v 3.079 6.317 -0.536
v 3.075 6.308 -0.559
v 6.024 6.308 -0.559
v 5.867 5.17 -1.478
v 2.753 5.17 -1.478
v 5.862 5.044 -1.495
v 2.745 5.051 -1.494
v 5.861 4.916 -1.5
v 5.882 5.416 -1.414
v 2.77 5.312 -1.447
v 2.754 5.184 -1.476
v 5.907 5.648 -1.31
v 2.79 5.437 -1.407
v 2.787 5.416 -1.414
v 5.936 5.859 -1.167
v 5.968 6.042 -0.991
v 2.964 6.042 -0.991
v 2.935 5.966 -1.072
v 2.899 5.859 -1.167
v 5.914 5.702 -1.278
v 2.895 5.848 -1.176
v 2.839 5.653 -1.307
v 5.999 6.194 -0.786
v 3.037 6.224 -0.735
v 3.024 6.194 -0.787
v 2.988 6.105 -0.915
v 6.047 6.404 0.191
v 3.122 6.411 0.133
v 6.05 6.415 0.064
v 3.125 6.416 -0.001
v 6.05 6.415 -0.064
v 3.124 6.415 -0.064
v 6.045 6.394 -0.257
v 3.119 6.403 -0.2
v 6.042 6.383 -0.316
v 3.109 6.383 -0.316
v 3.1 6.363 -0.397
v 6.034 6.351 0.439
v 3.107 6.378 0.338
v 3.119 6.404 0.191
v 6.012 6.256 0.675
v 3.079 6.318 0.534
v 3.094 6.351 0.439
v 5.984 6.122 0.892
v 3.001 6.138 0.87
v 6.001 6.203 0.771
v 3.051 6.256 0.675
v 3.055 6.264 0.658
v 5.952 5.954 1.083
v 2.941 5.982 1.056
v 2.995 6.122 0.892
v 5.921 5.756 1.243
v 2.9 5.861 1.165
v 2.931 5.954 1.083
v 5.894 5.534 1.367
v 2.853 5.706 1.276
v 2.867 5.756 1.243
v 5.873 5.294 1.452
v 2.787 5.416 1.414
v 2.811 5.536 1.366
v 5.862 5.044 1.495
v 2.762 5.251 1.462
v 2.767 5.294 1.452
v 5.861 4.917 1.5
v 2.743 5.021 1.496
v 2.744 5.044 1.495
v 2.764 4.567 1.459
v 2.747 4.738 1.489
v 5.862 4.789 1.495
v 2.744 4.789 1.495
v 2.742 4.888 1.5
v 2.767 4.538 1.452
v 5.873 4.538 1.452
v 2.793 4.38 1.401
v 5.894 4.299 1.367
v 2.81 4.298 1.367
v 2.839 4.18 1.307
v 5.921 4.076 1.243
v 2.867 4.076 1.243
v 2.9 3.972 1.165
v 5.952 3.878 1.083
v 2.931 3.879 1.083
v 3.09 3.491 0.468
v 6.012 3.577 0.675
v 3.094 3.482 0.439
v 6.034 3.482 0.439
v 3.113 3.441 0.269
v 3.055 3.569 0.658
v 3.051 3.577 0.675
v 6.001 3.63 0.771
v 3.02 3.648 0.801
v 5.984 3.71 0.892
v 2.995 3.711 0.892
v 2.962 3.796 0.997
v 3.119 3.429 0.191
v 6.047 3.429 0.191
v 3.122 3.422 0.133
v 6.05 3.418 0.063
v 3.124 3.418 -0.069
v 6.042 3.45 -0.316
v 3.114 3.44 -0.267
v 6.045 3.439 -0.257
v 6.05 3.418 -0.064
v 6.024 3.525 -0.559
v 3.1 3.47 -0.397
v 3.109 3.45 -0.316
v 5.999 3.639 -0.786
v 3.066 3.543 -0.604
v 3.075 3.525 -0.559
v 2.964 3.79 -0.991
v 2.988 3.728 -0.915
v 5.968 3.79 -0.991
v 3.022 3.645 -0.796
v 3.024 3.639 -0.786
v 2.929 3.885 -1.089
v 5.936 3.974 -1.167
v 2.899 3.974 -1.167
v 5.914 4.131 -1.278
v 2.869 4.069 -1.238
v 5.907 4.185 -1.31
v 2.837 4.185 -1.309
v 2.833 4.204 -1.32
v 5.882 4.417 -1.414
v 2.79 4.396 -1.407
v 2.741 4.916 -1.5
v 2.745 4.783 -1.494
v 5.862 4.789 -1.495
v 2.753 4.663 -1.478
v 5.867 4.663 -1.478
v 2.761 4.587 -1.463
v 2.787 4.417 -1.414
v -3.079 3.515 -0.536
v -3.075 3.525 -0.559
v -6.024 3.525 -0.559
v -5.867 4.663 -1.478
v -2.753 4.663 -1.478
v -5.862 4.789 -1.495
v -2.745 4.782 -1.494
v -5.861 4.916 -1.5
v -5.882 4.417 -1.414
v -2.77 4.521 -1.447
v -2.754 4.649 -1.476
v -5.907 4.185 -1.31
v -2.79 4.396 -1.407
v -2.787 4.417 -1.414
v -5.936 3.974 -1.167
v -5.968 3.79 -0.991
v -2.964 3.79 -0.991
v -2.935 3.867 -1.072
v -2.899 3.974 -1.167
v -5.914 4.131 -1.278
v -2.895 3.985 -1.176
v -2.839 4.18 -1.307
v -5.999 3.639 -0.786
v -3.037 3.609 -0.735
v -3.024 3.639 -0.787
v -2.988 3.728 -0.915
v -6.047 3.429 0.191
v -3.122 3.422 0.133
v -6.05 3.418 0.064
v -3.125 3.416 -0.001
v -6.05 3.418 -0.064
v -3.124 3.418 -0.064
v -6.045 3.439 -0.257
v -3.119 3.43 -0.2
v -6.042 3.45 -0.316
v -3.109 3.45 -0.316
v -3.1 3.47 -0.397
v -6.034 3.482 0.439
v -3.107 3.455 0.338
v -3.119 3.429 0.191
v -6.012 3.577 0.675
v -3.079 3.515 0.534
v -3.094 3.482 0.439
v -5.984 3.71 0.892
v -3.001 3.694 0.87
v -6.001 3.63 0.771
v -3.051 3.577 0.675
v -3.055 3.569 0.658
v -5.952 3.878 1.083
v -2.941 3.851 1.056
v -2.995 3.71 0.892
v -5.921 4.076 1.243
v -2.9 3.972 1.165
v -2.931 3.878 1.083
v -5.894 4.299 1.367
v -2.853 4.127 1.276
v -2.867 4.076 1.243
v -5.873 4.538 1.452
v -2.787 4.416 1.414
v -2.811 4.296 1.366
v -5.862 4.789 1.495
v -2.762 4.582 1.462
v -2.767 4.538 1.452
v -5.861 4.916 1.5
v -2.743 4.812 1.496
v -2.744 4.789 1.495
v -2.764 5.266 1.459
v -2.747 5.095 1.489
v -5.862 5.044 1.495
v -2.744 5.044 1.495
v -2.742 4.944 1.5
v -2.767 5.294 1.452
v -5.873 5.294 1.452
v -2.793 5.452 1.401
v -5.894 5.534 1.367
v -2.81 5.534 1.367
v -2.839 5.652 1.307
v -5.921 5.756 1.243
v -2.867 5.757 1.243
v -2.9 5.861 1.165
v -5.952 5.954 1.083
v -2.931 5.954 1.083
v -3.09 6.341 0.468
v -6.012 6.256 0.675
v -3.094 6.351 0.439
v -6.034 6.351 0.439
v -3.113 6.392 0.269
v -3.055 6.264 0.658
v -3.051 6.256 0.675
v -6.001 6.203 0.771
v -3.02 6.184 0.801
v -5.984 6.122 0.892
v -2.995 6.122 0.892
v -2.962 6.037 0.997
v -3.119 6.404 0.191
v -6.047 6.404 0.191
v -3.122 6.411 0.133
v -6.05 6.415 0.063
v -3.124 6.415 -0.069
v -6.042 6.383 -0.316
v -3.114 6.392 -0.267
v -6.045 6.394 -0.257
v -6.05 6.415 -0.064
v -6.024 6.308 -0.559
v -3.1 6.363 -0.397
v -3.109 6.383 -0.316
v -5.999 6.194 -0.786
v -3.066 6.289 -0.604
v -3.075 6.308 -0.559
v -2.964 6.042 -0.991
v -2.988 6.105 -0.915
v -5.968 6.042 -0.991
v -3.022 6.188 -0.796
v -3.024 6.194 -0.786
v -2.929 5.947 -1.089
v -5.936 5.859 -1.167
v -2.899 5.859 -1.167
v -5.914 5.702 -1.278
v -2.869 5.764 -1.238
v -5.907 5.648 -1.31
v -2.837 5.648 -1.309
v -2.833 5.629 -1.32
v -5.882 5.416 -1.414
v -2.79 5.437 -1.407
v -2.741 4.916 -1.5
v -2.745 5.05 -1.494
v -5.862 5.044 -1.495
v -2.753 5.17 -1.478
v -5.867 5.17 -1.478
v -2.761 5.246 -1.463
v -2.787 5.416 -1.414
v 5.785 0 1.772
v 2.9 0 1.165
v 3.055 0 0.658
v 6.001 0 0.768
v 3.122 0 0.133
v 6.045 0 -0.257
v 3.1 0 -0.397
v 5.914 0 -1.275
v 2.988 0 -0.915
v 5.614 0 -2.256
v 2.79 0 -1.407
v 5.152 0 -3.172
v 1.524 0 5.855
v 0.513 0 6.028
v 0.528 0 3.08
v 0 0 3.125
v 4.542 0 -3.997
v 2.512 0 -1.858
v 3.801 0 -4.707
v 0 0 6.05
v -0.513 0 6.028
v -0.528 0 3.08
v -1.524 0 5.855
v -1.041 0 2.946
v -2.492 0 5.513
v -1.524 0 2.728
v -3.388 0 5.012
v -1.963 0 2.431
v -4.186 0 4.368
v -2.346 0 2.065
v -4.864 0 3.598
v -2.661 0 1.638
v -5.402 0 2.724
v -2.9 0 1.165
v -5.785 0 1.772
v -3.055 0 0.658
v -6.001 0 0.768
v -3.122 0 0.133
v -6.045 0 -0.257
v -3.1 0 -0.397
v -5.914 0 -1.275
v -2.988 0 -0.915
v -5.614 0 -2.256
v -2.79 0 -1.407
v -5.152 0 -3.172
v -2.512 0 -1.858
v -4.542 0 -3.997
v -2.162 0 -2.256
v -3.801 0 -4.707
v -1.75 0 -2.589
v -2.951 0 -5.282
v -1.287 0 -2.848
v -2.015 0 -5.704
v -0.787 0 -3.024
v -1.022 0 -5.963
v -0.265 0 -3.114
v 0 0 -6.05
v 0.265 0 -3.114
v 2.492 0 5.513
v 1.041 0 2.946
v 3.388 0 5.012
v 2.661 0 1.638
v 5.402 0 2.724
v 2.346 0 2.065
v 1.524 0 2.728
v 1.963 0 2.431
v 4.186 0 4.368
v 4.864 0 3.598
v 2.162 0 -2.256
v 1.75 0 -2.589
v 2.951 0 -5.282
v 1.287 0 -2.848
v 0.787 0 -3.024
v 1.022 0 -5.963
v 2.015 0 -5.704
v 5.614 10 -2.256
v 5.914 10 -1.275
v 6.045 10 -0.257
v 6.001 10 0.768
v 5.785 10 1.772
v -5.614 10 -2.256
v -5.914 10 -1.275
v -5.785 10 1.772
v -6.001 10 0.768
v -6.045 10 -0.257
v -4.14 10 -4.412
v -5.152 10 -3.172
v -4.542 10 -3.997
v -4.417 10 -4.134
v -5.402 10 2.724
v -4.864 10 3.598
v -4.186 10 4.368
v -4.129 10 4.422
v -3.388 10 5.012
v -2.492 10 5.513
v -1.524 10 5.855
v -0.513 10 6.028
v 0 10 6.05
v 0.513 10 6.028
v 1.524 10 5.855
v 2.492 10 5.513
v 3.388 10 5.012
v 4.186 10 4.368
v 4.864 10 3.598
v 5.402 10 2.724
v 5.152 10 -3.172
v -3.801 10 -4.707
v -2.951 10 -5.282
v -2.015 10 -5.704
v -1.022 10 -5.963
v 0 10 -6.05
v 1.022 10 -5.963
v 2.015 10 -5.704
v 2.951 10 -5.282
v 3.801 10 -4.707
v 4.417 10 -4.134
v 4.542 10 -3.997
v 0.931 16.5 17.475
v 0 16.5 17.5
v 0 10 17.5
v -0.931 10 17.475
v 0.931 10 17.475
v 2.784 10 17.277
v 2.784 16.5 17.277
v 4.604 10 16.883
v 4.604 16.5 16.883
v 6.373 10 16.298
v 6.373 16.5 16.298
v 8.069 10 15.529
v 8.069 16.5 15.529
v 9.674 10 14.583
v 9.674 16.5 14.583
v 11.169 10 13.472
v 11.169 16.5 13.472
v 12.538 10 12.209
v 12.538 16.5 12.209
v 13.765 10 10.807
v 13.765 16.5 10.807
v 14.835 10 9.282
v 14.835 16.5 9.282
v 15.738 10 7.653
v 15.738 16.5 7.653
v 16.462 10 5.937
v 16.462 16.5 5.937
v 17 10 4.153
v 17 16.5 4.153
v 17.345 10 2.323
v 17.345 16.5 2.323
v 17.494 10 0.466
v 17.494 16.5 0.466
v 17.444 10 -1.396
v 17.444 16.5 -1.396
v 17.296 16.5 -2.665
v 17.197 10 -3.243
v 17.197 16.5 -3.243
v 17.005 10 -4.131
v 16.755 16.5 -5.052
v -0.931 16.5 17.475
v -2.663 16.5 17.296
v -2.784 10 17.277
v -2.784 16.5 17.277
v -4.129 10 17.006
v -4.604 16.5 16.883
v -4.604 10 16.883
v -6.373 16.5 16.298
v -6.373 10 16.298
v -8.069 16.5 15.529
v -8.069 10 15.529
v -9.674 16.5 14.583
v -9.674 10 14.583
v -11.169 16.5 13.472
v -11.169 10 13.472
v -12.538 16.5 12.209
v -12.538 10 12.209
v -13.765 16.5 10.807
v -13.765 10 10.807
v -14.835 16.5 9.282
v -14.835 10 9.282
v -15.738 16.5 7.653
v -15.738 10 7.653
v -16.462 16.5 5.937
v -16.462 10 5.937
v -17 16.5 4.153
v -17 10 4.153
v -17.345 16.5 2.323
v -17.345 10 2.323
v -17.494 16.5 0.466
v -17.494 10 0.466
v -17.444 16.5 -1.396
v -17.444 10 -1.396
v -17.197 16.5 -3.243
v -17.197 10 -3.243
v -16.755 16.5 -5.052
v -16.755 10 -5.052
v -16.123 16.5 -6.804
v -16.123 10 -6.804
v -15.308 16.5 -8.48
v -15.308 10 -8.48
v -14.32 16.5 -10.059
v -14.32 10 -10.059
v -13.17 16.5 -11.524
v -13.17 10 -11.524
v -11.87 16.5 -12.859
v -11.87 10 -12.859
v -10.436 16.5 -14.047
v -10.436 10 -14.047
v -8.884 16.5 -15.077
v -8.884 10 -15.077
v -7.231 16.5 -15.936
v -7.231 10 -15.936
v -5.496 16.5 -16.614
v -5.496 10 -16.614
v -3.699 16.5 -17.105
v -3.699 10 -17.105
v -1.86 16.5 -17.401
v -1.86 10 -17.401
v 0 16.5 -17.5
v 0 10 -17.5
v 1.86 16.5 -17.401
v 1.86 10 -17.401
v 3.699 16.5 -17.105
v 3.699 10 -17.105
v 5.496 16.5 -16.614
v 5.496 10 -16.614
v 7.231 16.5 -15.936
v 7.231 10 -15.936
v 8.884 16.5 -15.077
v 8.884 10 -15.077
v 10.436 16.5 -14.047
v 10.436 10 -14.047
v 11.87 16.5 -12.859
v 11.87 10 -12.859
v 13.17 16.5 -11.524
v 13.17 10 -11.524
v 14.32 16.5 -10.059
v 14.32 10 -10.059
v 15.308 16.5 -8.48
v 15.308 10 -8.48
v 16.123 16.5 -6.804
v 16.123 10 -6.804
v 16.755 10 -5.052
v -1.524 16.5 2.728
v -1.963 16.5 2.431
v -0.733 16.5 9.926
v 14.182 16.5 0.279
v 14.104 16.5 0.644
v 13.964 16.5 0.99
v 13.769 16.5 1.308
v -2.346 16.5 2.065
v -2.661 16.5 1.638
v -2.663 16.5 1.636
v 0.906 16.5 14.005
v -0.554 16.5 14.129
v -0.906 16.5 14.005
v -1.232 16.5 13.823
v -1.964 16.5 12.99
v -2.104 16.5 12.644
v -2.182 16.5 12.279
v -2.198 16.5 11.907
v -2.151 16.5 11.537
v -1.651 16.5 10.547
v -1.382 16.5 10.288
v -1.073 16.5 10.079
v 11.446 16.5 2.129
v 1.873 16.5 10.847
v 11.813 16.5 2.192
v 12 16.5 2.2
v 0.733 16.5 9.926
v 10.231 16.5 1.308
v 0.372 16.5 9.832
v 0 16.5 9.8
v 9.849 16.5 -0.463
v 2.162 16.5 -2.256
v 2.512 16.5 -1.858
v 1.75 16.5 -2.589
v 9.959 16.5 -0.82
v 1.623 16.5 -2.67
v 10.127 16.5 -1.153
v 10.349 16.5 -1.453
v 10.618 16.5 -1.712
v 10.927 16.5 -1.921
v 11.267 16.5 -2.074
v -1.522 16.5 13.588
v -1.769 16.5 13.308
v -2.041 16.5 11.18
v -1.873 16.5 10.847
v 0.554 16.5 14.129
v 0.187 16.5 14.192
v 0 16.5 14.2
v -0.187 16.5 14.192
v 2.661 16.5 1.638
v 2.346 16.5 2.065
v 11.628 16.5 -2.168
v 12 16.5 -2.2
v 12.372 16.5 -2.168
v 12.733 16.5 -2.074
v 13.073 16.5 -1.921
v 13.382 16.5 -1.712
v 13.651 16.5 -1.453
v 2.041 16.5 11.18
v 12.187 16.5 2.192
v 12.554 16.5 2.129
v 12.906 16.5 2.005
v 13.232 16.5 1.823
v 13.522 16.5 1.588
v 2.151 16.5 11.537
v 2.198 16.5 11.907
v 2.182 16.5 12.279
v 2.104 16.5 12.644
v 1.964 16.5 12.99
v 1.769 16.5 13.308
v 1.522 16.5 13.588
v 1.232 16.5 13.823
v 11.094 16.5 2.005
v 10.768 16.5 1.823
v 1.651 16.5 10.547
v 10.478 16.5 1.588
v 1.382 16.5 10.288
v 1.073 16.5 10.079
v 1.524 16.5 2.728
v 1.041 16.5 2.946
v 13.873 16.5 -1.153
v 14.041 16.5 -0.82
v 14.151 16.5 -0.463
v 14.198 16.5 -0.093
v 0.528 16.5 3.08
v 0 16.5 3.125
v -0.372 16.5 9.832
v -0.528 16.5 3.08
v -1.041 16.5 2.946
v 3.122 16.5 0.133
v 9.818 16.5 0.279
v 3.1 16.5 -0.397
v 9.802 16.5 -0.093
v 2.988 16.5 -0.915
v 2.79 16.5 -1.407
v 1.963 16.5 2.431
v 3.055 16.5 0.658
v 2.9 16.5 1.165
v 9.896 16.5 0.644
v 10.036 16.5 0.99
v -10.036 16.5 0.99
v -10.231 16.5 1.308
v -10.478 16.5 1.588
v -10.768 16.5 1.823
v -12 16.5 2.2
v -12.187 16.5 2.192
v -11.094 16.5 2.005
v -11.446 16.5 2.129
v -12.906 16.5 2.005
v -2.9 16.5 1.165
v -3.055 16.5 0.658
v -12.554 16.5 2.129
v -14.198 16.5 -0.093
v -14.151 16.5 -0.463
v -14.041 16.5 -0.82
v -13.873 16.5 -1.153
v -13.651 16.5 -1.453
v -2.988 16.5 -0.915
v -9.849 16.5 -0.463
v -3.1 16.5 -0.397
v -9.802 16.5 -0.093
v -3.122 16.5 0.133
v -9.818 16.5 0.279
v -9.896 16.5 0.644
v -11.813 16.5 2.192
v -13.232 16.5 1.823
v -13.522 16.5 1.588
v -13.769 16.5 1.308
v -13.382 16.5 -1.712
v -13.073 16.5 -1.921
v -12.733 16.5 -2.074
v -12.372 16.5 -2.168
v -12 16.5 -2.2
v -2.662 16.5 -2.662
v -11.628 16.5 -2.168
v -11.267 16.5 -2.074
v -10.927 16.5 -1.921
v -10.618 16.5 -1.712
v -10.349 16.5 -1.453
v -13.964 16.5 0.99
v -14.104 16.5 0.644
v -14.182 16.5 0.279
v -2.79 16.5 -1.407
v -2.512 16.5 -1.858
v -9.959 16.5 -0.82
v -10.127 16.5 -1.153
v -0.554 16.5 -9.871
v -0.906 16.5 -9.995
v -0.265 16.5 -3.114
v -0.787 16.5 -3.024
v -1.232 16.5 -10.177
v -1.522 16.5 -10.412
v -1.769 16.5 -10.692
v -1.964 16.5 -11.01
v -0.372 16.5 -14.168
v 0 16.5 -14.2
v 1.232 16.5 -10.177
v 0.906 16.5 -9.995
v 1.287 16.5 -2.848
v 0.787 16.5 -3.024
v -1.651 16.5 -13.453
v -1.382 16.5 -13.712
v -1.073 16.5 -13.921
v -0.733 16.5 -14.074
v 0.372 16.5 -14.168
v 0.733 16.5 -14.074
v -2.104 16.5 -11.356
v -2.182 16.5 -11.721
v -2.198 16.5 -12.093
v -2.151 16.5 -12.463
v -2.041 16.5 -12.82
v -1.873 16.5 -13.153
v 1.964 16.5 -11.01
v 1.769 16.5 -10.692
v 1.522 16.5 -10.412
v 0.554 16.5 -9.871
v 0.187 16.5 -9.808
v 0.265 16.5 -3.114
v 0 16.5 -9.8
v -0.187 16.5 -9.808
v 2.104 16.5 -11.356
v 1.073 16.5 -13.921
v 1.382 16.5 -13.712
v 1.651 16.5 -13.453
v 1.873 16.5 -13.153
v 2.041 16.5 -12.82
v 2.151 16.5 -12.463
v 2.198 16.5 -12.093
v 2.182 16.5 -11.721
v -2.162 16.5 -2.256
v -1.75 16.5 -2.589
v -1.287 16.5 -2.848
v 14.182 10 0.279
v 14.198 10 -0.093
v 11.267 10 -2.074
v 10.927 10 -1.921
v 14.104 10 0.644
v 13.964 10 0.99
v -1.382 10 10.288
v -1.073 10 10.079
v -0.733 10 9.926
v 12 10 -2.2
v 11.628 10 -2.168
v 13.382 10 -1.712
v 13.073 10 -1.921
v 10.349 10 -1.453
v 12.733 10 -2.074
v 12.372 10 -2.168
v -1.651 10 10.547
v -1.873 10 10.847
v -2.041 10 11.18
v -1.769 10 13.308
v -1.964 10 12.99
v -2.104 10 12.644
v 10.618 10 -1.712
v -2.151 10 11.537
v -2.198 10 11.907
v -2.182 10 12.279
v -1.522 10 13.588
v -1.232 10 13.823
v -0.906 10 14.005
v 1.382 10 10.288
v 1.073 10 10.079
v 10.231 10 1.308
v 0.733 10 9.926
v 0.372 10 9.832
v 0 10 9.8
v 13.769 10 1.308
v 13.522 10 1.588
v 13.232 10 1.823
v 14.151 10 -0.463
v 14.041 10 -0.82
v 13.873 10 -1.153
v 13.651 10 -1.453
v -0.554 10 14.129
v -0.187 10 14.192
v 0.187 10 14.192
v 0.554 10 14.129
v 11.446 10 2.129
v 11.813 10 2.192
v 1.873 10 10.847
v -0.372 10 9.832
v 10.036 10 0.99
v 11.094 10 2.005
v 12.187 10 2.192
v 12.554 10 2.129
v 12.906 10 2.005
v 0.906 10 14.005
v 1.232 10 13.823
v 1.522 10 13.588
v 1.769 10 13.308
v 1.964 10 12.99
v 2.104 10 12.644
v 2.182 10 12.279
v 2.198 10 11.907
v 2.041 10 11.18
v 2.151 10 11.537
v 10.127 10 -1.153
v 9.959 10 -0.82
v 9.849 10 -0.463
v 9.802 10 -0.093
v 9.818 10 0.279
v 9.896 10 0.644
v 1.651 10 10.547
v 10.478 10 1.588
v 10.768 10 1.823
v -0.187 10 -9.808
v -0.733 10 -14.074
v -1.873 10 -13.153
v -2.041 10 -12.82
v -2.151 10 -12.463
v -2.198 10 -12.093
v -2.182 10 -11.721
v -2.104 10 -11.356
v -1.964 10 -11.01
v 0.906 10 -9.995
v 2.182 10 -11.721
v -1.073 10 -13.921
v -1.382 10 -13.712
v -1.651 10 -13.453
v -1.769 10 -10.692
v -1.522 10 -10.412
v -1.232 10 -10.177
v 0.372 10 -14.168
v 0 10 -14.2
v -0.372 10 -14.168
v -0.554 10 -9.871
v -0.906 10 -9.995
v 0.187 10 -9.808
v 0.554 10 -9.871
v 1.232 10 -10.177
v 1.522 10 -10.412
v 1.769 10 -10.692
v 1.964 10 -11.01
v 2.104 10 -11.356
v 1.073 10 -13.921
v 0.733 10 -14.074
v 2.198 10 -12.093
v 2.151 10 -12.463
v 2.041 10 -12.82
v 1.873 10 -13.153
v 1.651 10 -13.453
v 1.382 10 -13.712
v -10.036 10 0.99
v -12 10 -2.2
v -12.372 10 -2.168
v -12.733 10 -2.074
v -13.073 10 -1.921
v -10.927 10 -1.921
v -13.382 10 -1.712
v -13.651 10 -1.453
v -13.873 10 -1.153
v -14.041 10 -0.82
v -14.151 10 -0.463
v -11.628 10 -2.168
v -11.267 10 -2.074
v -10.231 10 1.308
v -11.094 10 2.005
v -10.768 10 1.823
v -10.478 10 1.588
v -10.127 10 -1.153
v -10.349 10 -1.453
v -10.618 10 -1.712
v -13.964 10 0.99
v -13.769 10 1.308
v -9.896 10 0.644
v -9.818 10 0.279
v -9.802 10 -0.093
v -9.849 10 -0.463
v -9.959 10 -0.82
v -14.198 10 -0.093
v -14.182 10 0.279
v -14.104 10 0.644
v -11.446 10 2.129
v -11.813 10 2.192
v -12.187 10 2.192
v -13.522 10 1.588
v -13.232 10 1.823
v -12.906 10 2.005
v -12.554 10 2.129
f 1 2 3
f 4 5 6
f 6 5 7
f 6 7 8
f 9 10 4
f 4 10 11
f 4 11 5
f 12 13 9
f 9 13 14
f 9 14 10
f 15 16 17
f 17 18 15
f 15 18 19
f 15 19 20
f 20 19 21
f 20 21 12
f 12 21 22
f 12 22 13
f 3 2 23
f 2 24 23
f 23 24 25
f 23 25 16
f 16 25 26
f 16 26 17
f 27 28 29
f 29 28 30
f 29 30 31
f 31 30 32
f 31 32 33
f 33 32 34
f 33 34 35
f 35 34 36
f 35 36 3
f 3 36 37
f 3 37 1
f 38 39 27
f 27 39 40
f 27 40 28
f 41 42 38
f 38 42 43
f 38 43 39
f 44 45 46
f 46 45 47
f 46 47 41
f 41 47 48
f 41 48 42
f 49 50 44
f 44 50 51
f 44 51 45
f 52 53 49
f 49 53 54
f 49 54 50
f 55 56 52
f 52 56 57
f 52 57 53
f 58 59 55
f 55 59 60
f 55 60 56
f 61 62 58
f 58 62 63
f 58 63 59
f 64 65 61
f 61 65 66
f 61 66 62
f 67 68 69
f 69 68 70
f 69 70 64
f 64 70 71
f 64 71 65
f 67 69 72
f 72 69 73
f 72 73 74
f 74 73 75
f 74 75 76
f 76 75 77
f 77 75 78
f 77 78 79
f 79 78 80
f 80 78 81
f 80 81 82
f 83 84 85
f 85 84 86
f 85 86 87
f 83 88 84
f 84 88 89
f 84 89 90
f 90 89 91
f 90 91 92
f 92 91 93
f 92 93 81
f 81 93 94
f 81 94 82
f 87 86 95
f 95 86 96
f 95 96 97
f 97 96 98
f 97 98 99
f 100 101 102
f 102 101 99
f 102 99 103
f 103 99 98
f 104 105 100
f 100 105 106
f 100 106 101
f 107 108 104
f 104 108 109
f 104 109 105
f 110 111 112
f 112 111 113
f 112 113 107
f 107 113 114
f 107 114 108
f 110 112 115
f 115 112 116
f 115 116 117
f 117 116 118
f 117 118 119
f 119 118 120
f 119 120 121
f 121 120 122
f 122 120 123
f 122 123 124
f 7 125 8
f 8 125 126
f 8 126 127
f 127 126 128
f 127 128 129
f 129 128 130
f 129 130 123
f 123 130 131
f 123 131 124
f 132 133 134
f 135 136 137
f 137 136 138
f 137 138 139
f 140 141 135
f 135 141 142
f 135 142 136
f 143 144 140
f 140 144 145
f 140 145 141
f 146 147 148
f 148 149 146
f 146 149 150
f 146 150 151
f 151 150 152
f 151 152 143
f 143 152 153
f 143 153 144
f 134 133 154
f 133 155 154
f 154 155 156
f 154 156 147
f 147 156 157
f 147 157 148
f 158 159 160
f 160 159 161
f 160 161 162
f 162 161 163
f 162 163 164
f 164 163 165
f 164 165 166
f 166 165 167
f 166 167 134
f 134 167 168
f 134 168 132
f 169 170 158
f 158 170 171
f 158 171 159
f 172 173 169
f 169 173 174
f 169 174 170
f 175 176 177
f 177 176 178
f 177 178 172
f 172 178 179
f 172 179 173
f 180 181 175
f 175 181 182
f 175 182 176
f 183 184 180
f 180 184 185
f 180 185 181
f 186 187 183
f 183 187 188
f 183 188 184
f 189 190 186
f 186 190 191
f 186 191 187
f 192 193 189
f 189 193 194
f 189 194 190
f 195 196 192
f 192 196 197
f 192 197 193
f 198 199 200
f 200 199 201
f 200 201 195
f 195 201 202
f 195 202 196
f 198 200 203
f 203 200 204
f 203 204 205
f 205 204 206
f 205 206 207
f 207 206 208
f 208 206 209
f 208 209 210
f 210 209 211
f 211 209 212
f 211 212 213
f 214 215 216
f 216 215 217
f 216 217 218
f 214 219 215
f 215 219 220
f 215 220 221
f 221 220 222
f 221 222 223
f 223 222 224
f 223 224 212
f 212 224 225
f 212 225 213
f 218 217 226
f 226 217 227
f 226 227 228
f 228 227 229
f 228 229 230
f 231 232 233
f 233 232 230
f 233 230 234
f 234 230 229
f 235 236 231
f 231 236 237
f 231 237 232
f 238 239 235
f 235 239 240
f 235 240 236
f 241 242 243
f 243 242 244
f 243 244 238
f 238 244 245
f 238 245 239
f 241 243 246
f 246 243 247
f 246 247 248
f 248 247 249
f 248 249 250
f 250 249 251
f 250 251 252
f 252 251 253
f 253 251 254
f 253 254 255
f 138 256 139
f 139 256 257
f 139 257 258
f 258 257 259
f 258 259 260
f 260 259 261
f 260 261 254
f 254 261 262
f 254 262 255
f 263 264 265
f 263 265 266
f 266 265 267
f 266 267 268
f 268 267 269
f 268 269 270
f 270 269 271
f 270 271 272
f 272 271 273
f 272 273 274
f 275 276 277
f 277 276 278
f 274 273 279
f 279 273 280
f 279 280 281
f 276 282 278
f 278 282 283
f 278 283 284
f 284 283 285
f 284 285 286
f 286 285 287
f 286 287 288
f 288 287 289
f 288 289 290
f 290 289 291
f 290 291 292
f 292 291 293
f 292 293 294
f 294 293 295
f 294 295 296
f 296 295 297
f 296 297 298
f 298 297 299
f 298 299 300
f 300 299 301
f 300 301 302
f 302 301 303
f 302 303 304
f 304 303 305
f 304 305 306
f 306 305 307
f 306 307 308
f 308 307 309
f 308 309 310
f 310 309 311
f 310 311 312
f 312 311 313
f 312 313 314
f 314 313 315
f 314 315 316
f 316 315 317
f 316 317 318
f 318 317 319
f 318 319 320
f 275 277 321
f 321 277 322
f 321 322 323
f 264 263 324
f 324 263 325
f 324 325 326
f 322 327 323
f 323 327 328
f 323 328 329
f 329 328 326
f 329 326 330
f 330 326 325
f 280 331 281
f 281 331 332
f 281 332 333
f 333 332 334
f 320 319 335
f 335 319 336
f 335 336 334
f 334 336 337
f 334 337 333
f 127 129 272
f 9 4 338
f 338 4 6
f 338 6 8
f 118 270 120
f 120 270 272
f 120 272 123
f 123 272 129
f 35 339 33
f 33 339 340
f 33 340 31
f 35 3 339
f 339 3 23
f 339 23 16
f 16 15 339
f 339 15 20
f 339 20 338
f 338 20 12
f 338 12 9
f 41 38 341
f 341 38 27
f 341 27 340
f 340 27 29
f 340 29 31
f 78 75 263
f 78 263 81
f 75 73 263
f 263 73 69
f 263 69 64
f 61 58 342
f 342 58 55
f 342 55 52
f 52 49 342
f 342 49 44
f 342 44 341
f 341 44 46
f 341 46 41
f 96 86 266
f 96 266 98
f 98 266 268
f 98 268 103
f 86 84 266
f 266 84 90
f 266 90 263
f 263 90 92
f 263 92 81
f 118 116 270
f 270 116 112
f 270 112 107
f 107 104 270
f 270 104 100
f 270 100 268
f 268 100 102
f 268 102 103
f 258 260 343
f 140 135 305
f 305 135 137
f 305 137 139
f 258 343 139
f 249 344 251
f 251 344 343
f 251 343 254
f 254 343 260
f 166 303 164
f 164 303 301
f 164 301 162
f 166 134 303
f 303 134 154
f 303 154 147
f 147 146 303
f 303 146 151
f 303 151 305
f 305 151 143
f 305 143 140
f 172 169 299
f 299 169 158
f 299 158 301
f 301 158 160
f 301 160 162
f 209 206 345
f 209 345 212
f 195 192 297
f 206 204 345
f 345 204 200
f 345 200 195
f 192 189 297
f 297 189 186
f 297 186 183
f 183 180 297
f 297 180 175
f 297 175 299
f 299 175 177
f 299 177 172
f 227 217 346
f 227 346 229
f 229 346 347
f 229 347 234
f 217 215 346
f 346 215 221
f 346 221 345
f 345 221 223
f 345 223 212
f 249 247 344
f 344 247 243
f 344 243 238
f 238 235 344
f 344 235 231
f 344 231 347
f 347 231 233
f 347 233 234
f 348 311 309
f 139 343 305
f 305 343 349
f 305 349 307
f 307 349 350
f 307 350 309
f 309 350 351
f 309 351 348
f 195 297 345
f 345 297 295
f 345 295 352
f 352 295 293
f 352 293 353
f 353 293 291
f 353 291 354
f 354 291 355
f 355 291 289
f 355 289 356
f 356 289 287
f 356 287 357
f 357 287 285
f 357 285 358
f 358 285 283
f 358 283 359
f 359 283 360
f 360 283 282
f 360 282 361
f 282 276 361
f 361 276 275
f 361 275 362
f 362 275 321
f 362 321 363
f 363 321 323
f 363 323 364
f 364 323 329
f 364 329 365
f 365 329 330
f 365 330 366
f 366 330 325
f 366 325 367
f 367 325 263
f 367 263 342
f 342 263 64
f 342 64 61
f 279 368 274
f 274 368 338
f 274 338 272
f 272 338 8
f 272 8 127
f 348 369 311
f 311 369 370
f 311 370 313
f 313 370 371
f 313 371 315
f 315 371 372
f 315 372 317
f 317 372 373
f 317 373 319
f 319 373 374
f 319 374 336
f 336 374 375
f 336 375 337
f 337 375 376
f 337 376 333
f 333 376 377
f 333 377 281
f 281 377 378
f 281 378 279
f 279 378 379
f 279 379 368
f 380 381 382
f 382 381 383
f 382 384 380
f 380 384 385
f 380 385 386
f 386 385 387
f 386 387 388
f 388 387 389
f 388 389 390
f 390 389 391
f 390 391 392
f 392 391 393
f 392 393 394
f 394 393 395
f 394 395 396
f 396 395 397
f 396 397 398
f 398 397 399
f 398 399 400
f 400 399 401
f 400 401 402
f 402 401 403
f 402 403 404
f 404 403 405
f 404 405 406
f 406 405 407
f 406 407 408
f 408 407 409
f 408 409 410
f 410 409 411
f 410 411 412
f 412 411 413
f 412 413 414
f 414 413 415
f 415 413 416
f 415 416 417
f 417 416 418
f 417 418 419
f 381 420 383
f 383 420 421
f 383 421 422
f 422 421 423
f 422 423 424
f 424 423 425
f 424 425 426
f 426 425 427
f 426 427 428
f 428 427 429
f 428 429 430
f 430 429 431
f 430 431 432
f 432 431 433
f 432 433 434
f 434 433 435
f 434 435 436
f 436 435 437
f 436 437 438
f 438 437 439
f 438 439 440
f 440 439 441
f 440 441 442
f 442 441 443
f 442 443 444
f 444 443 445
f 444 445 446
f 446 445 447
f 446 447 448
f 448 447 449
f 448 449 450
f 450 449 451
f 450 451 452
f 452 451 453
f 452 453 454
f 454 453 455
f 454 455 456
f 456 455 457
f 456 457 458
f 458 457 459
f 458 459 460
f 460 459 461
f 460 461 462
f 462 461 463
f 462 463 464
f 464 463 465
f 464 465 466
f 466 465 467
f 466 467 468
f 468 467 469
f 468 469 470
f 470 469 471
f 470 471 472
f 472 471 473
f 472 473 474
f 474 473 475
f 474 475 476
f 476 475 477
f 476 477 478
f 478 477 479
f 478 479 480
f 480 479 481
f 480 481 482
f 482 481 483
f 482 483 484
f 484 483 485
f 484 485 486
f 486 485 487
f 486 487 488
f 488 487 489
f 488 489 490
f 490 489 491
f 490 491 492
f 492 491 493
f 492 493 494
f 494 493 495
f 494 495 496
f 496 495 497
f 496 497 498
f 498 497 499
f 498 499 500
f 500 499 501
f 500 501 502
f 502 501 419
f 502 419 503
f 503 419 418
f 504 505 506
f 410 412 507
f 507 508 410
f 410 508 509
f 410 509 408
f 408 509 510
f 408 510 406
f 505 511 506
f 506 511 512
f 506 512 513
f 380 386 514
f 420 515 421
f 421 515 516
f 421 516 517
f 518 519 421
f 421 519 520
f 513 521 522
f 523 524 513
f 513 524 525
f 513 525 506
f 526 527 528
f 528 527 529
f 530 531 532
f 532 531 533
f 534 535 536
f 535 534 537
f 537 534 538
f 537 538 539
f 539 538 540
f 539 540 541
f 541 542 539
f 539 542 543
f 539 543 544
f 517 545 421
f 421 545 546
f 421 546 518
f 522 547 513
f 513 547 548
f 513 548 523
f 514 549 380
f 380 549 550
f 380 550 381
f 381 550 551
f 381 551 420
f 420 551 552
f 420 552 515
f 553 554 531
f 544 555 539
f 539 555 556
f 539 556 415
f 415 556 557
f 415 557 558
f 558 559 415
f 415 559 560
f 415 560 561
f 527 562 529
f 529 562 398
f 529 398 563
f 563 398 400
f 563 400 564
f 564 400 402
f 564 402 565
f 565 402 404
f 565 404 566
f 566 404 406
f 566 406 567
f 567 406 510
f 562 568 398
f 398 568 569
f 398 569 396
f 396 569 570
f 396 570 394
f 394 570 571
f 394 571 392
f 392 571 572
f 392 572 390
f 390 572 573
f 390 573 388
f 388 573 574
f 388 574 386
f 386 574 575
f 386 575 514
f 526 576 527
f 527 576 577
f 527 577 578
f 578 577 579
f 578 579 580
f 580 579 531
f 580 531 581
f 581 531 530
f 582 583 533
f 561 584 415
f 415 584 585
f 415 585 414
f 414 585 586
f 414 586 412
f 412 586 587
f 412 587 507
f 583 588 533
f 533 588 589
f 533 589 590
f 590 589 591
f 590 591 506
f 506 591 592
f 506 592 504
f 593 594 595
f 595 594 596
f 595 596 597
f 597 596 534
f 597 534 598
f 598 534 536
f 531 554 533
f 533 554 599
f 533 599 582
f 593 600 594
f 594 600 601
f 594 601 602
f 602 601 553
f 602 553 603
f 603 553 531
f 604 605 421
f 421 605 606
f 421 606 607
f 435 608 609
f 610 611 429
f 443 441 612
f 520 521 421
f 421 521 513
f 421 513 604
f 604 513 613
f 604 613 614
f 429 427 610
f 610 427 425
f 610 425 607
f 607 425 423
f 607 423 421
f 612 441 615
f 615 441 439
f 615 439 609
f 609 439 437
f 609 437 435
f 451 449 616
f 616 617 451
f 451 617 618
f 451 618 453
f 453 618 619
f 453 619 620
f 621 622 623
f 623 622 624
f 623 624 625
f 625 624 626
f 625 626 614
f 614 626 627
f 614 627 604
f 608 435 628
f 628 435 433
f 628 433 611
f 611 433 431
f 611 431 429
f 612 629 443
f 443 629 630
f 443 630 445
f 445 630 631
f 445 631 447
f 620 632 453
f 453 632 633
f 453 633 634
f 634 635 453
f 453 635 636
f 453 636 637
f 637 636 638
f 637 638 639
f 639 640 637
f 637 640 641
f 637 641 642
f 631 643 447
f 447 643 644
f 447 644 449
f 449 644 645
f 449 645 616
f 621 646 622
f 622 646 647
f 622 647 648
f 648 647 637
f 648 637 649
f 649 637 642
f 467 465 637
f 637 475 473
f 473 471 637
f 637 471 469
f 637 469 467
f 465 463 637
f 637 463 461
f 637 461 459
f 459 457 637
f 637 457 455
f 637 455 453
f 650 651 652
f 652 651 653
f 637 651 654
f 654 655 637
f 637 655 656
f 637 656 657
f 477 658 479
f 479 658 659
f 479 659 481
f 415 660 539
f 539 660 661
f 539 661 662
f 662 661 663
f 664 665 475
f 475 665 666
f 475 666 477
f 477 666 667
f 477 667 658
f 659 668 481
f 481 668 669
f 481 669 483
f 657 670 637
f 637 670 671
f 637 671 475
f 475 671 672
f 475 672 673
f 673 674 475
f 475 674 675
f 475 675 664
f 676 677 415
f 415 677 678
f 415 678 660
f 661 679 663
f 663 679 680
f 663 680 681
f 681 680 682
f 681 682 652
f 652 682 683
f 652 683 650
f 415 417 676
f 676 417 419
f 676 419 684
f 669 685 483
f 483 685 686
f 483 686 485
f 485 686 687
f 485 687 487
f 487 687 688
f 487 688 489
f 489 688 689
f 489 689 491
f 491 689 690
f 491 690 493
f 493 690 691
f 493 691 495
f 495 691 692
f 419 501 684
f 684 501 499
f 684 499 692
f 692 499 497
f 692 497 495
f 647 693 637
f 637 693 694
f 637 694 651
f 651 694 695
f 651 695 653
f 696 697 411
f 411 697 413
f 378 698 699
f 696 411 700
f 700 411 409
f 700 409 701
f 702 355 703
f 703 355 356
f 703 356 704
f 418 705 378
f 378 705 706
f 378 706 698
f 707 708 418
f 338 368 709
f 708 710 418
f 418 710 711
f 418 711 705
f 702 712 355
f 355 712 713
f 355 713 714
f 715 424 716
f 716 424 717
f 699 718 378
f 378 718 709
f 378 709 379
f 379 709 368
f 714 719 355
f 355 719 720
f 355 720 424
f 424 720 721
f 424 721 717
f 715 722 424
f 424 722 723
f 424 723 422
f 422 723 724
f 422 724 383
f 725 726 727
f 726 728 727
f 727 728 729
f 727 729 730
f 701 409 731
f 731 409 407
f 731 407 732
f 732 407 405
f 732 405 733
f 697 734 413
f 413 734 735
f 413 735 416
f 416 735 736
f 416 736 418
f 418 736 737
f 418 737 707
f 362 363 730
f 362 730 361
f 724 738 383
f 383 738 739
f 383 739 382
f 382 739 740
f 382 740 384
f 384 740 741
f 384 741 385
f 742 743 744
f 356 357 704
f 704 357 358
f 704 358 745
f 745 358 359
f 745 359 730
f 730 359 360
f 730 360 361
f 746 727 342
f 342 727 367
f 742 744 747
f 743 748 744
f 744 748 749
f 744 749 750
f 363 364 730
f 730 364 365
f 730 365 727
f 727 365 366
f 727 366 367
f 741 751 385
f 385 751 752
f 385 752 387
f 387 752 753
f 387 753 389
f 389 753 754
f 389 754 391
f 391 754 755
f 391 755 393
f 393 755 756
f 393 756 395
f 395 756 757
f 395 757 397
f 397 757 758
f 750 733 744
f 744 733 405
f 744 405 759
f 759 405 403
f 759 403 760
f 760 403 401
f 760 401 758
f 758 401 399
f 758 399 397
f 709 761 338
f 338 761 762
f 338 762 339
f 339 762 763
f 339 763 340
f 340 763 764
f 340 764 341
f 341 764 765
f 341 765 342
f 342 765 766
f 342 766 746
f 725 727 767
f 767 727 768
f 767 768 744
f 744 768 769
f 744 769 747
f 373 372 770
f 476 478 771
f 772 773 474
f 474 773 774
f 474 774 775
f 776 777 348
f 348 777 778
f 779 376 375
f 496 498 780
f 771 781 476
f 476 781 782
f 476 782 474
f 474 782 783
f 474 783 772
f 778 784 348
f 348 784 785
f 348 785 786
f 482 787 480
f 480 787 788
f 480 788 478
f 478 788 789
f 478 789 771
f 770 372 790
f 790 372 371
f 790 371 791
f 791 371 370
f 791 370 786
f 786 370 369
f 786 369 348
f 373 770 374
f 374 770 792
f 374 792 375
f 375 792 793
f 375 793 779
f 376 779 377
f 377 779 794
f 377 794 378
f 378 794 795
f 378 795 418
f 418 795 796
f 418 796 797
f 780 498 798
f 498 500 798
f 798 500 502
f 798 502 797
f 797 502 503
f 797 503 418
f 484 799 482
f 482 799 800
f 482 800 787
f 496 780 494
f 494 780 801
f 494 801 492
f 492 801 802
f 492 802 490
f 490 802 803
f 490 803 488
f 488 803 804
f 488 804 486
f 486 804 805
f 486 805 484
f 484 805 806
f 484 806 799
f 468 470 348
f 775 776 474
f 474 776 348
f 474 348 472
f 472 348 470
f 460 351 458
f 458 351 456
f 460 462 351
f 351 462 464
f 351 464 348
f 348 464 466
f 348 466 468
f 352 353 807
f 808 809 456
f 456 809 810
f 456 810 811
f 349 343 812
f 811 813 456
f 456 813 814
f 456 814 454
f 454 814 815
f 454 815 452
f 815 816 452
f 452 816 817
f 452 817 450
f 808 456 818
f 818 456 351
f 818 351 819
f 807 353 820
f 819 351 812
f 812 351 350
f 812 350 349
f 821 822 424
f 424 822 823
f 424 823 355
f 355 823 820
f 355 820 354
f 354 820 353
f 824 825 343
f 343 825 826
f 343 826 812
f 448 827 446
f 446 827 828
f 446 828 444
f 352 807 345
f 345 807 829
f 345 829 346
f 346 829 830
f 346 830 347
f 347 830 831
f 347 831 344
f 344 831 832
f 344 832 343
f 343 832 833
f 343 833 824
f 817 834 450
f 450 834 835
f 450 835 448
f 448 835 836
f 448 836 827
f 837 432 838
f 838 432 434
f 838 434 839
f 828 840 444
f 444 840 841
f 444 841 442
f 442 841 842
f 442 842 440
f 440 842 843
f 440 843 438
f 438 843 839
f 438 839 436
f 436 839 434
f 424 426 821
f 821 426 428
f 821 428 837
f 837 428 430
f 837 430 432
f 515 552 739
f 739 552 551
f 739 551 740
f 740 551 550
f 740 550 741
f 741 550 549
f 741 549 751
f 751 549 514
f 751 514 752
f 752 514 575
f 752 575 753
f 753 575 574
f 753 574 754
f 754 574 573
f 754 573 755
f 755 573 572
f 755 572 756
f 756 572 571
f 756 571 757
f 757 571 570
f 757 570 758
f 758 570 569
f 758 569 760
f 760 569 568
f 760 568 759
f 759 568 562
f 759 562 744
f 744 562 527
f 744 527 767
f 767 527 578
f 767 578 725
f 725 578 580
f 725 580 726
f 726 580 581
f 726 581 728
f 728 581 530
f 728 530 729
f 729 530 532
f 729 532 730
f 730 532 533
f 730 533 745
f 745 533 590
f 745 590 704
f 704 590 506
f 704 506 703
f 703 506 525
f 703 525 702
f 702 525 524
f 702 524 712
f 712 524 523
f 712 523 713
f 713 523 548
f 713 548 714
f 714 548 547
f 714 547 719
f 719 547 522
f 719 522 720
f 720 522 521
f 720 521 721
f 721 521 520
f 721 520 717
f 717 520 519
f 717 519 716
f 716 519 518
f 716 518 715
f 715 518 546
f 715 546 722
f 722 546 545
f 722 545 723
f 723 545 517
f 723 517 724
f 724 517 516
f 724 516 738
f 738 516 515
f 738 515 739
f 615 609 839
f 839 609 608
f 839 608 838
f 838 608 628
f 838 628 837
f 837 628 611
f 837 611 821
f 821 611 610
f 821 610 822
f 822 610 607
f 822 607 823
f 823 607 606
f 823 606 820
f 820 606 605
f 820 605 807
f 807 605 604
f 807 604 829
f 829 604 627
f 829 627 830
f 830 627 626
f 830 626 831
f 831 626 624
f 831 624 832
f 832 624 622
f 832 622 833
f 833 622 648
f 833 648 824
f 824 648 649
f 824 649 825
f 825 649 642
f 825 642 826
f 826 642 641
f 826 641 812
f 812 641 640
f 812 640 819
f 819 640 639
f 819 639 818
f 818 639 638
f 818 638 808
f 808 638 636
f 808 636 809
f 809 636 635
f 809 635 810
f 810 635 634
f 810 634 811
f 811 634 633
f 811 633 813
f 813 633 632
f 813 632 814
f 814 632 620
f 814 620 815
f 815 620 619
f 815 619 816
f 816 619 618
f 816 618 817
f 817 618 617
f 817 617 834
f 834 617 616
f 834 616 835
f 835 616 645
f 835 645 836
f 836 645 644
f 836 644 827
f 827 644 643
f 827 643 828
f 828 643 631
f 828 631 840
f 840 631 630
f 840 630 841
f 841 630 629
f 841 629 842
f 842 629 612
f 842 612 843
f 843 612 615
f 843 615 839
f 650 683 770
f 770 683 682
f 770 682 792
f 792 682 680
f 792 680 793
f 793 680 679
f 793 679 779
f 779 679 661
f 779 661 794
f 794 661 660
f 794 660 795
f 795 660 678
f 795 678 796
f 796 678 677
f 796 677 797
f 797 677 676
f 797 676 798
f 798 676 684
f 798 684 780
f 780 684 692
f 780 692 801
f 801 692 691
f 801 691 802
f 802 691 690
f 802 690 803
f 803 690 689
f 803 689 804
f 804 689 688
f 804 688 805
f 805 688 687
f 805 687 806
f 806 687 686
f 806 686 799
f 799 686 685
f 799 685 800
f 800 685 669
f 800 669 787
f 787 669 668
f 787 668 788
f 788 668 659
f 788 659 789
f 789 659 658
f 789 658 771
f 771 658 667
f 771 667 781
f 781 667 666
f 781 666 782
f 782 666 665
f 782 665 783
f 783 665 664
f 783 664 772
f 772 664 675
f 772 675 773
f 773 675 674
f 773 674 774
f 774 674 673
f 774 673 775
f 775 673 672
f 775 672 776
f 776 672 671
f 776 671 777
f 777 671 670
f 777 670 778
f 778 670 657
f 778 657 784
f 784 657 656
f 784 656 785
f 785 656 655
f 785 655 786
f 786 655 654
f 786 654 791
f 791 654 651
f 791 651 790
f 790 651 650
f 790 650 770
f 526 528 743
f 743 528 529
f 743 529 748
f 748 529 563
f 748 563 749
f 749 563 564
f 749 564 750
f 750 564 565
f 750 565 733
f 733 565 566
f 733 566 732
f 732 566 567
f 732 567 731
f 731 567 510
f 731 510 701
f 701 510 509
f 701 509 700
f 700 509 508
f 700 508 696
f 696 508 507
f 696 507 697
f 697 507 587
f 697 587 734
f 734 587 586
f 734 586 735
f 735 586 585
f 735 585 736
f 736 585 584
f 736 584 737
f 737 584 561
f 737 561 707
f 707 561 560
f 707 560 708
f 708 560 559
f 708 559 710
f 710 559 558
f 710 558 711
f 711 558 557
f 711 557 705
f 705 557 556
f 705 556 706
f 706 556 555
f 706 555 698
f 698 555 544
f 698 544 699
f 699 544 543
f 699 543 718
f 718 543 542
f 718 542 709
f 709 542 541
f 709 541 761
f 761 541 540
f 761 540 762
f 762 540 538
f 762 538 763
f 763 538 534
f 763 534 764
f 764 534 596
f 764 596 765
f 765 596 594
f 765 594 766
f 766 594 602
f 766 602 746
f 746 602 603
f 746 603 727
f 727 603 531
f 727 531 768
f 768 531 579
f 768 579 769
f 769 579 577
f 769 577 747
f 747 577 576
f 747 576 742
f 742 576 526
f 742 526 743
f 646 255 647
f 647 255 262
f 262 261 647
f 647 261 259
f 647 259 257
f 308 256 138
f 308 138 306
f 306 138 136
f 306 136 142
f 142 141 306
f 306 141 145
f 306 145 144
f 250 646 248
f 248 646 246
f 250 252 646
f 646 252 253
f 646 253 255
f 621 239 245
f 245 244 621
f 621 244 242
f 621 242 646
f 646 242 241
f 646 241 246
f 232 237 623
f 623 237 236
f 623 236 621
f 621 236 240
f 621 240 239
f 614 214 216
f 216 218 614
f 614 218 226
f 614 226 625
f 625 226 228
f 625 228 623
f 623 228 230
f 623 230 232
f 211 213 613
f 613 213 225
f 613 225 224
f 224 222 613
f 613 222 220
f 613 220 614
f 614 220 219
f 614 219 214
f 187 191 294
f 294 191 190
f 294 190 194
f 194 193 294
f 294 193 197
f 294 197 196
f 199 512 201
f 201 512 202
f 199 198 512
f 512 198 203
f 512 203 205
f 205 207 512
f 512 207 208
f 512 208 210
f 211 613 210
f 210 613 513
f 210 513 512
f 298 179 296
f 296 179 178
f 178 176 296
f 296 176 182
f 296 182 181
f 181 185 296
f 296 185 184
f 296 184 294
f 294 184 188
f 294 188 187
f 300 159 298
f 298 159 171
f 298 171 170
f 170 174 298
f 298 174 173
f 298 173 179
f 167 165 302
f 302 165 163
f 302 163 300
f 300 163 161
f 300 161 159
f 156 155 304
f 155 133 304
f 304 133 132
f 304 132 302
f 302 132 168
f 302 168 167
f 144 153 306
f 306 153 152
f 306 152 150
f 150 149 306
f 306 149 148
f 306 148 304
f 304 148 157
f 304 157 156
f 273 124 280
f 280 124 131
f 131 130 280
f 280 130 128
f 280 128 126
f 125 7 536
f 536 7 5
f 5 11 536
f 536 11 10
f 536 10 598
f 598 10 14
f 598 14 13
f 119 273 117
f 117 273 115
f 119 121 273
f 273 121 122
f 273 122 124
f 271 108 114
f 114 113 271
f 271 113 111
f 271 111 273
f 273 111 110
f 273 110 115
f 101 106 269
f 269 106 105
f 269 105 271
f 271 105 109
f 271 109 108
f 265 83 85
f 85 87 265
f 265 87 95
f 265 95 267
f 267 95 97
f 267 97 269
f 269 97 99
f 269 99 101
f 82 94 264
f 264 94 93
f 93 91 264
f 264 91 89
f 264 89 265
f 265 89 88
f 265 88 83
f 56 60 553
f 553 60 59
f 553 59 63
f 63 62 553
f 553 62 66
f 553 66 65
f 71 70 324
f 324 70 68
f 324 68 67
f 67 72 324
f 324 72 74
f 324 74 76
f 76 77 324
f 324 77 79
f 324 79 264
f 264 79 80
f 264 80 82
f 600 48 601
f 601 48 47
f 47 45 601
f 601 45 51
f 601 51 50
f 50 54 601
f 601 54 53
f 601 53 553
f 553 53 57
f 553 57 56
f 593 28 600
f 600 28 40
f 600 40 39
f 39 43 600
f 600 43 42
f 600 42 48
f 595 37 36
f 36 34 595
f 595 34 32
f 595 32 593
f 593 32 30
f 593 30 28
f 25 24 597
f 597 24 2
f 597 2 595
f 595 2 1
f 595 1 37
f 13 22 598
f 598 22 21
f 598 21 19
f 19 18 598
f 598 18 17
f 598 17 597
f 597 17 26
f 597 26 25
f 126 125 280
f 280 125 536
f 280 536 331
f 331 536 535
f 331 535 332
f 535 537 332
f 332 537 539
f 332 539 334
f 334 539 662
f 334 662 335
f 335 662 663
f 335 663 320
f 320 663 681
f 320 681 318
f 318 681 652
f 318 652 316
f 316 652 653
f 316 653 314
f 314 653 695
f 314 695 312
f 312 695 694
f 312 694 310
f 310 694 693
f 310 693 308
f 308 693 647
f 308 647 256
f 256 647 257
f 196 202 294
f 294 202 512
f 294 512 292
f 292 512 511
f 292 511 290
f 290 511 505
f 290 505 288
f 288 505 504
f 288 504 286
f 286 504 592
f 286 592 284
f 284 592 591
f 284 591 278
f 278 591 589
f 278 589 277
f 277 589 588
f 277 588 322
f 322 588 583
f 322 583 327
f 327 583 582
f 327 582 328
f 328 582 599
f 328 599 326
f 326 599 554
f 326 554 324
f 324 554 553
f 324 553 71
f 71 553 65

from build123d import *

# Parameters (mm, degrees)
SKETCH1_R                      = 6.05
SKETCH1_R_2                    = 3.05
BOSS_EXTRUDE1_DEPTH            = 10
SKETCH2_R                      = 17.5
BOSS_EXTRUDE2_DEPTH            = 6.5
CUT_EXTRUDE1_REACH             = 28.693
SKETCH3_R                      = 2.2
CUT_EXTRUDE2_DEPTH             = 30.744747435
CUT_EXTRUDE2_DEPTH_BACK        = 30.744747435
SKETCH4_R                      = 1.5
CUT_EXTRUDE3_REACH             = 28.693
SKETCH6_R                      = 3.125
CUT_EXTRUDE3_DIRECTION_2_REACH = 28.693


with BuildPart() as part:
    # Sketch1 → Boss-Extrude1 (new body)
    with BuildSketch(Plane(origin=(0, 0, 0), x_dir=(1, 0, 0), z_dir=(0, 1, 0))):
        with Locations(Location((0, 0, 0), (0, 0, 270))):
            Circle(SKETCH1_R)
        with Locations(Location((0, 0, 0), (0, 0, 270))):
            Circle(SKETCH1_R_2, mode=Mode.SUBTRACT)
    extrude(amount=BOSS_EXTRUDE1_DEPTH)

    # Sketch2 → Boss-Extrude2 (add)
    with BuildSketch(Plane(origin=(0, 10, 0), x_dir=(1, 0, 0), z_dir=(0, 1, 0))):
        with Locations(Location((0, 0, 0), (0, 0, 90))):
            Circle(SKETCH2_R)
    extrude(amount=BOSS_EXTRUDE2_DEPTH)

    # Sketch3 → Cut-Extrude1 (cut, up to next)
    with BuildSketch(Plane.XZ.offset(-10), mode=Mode.PRIVATE) as cut_extrude1_sk1:
        with Locations(Location((12, 0, 0), (0, 0, 270))):
            Circle(SKETCH3_R)
    cut_extrude1_tool1 = extrude(cut_extrude1_sk1.sketch, amount=-CUT_EXTRUDE1_REACH, mode=Mode.PRIVATE) & part.part
    # Sketch3 → Cut-Extrude1 (cut, up to next)
    with BuildSketch(Plane.XZ.offset(-10), mode=Mode.PRIVATE) as cut_extrude1_sk2:
        with Locations(Location((0, -12, 0), (0, 0, 270))):
            Circle(SKETCH3_R)
    cut_extrude1_tool2 = extrude(cut_extrude1_sk2.sketch, amount=-CUT_EXTRUDE1_REACH, mode=Mode.PRIVATE) & part.part
    # Sketch3 → Cut-Extrude1 (cut, up to next)
    with BuildSketch(Plane.XZ.offset(-10), mode=Mode.PRIVATE) as cut_extrude1_sk3:
        with Locations(Location((-12, 0, 0), (0, 0, 270))):
            Circle(SKETCH3_R)
    cut_extrude1_tool3 = extrude(cut_extrude1_sk3.sketch, amount=-CUT_EXTRUDE1_REACH, mode=Mode.PRIVATE) & part.part
    # Sketch3 → Cut-Extrude1 (cut, up to next)
    with BuildSketch(Plane.XZ.offset(-10), mode=Mode.PRIVATE) as cut_extrude1_sk4:
        with Locations(Location((0, 12, 0), (0, 0, 270))):
            Circle(SKETCH3_R)
    cut_extrude1_tool4 = extrude(cut_extrude1_sk4.sketch, amount=-CUT_EXTRUDE1_REACH, mode=Mode.PRIVATE) & part.part
    add(cut_extrude1_tool1.solids().sort_by_distance((12, 10, 0))[0], mode=Mode.SUBTRACT)
    add(cut_extrude1_tool2.solids().sort_by_distance((0, 10, -12))[0], mode=Mode.SUBTRACT)
    add(cut_extrude1_tool3.solids().sort_by_distance((-12, 10, 0))[0], mode=Mode.SUBTRACT)
    add(cut_extrude1_tool4.solids().sort_by_distance((0, 10, 12))[0], mode=Mode.SUBTRACT)

    # Sketch4 → Cut-Extrude2 (cut, two sides: drawn at the far end of the back side and taken through both)
    with BuildSketch(Plane(origin=(0, 0, 0), x_dir=(0, 0, -1), z_dir=(1, 0, 0)).offset(-CUT_EXTRUDE2_DEPTH_BACK)):
        with Locations((0, 4.916404418)):
            Circle(SKETCH4_R)
    extrude(amount=CUT_EXTRUDE2_DEPTH + CUT_EXTRUDE2_DEPTH_BACK, mode=Mode.SUBTRACT)

    # Sketch6 → Cut-Extrude3 (cut, up to next)
    with BuildSketch(Plane(origin=(0, 10, 0), x_dir=(-1, 0, 0), z_dir=(0, -1, 0)), mode=Mode.PRIVATE) as cut_extrude3_sk1:
        with Locations(Location((0, 0, 0), (0, 0, 270))):
            Circle(SKETCH6_R)
    cut_extrude3_tool1 = extrude(cut_extrude3_sk1.sketch, amount=-CUT_EXTRUDE3_REACH, mode=Mode.PRIVATE) & part.part
    add(cut_extrude3_tool1.solids().sort_by_distance((0, 10, 0))[0], mode=Mode.SUBTRACT)

    # Sketch6 → Cut-Extrude3 direction 2 (cut, up to next)
    with BuildSketch(Plane(origin=(0, 10, 0), x_dir=(-1, 0, 0), z_dir=(0, -1, 0)), mode=Mode.PRIVATE) as cut_extrude3_direction_2_sk1:
        with Locations(Location((0, 0, 0), (0, 0, 270))):
            Circle(SKETCH6_R)
    cut_extrude3_direction_2_tool1 = extrude(cut_extrude3_direction_2_sk1.sketch, amount=CUT_EXTRUDE3_DIRECTION_2_REACH, mode=Mode.PRIVATE) & part.part
    add(cut_extrude3_direction_2_tool1.solids().sort_by_distance((0, 10, 0))[0], mode=Mode.SUBTRACT)


solid = part.part
